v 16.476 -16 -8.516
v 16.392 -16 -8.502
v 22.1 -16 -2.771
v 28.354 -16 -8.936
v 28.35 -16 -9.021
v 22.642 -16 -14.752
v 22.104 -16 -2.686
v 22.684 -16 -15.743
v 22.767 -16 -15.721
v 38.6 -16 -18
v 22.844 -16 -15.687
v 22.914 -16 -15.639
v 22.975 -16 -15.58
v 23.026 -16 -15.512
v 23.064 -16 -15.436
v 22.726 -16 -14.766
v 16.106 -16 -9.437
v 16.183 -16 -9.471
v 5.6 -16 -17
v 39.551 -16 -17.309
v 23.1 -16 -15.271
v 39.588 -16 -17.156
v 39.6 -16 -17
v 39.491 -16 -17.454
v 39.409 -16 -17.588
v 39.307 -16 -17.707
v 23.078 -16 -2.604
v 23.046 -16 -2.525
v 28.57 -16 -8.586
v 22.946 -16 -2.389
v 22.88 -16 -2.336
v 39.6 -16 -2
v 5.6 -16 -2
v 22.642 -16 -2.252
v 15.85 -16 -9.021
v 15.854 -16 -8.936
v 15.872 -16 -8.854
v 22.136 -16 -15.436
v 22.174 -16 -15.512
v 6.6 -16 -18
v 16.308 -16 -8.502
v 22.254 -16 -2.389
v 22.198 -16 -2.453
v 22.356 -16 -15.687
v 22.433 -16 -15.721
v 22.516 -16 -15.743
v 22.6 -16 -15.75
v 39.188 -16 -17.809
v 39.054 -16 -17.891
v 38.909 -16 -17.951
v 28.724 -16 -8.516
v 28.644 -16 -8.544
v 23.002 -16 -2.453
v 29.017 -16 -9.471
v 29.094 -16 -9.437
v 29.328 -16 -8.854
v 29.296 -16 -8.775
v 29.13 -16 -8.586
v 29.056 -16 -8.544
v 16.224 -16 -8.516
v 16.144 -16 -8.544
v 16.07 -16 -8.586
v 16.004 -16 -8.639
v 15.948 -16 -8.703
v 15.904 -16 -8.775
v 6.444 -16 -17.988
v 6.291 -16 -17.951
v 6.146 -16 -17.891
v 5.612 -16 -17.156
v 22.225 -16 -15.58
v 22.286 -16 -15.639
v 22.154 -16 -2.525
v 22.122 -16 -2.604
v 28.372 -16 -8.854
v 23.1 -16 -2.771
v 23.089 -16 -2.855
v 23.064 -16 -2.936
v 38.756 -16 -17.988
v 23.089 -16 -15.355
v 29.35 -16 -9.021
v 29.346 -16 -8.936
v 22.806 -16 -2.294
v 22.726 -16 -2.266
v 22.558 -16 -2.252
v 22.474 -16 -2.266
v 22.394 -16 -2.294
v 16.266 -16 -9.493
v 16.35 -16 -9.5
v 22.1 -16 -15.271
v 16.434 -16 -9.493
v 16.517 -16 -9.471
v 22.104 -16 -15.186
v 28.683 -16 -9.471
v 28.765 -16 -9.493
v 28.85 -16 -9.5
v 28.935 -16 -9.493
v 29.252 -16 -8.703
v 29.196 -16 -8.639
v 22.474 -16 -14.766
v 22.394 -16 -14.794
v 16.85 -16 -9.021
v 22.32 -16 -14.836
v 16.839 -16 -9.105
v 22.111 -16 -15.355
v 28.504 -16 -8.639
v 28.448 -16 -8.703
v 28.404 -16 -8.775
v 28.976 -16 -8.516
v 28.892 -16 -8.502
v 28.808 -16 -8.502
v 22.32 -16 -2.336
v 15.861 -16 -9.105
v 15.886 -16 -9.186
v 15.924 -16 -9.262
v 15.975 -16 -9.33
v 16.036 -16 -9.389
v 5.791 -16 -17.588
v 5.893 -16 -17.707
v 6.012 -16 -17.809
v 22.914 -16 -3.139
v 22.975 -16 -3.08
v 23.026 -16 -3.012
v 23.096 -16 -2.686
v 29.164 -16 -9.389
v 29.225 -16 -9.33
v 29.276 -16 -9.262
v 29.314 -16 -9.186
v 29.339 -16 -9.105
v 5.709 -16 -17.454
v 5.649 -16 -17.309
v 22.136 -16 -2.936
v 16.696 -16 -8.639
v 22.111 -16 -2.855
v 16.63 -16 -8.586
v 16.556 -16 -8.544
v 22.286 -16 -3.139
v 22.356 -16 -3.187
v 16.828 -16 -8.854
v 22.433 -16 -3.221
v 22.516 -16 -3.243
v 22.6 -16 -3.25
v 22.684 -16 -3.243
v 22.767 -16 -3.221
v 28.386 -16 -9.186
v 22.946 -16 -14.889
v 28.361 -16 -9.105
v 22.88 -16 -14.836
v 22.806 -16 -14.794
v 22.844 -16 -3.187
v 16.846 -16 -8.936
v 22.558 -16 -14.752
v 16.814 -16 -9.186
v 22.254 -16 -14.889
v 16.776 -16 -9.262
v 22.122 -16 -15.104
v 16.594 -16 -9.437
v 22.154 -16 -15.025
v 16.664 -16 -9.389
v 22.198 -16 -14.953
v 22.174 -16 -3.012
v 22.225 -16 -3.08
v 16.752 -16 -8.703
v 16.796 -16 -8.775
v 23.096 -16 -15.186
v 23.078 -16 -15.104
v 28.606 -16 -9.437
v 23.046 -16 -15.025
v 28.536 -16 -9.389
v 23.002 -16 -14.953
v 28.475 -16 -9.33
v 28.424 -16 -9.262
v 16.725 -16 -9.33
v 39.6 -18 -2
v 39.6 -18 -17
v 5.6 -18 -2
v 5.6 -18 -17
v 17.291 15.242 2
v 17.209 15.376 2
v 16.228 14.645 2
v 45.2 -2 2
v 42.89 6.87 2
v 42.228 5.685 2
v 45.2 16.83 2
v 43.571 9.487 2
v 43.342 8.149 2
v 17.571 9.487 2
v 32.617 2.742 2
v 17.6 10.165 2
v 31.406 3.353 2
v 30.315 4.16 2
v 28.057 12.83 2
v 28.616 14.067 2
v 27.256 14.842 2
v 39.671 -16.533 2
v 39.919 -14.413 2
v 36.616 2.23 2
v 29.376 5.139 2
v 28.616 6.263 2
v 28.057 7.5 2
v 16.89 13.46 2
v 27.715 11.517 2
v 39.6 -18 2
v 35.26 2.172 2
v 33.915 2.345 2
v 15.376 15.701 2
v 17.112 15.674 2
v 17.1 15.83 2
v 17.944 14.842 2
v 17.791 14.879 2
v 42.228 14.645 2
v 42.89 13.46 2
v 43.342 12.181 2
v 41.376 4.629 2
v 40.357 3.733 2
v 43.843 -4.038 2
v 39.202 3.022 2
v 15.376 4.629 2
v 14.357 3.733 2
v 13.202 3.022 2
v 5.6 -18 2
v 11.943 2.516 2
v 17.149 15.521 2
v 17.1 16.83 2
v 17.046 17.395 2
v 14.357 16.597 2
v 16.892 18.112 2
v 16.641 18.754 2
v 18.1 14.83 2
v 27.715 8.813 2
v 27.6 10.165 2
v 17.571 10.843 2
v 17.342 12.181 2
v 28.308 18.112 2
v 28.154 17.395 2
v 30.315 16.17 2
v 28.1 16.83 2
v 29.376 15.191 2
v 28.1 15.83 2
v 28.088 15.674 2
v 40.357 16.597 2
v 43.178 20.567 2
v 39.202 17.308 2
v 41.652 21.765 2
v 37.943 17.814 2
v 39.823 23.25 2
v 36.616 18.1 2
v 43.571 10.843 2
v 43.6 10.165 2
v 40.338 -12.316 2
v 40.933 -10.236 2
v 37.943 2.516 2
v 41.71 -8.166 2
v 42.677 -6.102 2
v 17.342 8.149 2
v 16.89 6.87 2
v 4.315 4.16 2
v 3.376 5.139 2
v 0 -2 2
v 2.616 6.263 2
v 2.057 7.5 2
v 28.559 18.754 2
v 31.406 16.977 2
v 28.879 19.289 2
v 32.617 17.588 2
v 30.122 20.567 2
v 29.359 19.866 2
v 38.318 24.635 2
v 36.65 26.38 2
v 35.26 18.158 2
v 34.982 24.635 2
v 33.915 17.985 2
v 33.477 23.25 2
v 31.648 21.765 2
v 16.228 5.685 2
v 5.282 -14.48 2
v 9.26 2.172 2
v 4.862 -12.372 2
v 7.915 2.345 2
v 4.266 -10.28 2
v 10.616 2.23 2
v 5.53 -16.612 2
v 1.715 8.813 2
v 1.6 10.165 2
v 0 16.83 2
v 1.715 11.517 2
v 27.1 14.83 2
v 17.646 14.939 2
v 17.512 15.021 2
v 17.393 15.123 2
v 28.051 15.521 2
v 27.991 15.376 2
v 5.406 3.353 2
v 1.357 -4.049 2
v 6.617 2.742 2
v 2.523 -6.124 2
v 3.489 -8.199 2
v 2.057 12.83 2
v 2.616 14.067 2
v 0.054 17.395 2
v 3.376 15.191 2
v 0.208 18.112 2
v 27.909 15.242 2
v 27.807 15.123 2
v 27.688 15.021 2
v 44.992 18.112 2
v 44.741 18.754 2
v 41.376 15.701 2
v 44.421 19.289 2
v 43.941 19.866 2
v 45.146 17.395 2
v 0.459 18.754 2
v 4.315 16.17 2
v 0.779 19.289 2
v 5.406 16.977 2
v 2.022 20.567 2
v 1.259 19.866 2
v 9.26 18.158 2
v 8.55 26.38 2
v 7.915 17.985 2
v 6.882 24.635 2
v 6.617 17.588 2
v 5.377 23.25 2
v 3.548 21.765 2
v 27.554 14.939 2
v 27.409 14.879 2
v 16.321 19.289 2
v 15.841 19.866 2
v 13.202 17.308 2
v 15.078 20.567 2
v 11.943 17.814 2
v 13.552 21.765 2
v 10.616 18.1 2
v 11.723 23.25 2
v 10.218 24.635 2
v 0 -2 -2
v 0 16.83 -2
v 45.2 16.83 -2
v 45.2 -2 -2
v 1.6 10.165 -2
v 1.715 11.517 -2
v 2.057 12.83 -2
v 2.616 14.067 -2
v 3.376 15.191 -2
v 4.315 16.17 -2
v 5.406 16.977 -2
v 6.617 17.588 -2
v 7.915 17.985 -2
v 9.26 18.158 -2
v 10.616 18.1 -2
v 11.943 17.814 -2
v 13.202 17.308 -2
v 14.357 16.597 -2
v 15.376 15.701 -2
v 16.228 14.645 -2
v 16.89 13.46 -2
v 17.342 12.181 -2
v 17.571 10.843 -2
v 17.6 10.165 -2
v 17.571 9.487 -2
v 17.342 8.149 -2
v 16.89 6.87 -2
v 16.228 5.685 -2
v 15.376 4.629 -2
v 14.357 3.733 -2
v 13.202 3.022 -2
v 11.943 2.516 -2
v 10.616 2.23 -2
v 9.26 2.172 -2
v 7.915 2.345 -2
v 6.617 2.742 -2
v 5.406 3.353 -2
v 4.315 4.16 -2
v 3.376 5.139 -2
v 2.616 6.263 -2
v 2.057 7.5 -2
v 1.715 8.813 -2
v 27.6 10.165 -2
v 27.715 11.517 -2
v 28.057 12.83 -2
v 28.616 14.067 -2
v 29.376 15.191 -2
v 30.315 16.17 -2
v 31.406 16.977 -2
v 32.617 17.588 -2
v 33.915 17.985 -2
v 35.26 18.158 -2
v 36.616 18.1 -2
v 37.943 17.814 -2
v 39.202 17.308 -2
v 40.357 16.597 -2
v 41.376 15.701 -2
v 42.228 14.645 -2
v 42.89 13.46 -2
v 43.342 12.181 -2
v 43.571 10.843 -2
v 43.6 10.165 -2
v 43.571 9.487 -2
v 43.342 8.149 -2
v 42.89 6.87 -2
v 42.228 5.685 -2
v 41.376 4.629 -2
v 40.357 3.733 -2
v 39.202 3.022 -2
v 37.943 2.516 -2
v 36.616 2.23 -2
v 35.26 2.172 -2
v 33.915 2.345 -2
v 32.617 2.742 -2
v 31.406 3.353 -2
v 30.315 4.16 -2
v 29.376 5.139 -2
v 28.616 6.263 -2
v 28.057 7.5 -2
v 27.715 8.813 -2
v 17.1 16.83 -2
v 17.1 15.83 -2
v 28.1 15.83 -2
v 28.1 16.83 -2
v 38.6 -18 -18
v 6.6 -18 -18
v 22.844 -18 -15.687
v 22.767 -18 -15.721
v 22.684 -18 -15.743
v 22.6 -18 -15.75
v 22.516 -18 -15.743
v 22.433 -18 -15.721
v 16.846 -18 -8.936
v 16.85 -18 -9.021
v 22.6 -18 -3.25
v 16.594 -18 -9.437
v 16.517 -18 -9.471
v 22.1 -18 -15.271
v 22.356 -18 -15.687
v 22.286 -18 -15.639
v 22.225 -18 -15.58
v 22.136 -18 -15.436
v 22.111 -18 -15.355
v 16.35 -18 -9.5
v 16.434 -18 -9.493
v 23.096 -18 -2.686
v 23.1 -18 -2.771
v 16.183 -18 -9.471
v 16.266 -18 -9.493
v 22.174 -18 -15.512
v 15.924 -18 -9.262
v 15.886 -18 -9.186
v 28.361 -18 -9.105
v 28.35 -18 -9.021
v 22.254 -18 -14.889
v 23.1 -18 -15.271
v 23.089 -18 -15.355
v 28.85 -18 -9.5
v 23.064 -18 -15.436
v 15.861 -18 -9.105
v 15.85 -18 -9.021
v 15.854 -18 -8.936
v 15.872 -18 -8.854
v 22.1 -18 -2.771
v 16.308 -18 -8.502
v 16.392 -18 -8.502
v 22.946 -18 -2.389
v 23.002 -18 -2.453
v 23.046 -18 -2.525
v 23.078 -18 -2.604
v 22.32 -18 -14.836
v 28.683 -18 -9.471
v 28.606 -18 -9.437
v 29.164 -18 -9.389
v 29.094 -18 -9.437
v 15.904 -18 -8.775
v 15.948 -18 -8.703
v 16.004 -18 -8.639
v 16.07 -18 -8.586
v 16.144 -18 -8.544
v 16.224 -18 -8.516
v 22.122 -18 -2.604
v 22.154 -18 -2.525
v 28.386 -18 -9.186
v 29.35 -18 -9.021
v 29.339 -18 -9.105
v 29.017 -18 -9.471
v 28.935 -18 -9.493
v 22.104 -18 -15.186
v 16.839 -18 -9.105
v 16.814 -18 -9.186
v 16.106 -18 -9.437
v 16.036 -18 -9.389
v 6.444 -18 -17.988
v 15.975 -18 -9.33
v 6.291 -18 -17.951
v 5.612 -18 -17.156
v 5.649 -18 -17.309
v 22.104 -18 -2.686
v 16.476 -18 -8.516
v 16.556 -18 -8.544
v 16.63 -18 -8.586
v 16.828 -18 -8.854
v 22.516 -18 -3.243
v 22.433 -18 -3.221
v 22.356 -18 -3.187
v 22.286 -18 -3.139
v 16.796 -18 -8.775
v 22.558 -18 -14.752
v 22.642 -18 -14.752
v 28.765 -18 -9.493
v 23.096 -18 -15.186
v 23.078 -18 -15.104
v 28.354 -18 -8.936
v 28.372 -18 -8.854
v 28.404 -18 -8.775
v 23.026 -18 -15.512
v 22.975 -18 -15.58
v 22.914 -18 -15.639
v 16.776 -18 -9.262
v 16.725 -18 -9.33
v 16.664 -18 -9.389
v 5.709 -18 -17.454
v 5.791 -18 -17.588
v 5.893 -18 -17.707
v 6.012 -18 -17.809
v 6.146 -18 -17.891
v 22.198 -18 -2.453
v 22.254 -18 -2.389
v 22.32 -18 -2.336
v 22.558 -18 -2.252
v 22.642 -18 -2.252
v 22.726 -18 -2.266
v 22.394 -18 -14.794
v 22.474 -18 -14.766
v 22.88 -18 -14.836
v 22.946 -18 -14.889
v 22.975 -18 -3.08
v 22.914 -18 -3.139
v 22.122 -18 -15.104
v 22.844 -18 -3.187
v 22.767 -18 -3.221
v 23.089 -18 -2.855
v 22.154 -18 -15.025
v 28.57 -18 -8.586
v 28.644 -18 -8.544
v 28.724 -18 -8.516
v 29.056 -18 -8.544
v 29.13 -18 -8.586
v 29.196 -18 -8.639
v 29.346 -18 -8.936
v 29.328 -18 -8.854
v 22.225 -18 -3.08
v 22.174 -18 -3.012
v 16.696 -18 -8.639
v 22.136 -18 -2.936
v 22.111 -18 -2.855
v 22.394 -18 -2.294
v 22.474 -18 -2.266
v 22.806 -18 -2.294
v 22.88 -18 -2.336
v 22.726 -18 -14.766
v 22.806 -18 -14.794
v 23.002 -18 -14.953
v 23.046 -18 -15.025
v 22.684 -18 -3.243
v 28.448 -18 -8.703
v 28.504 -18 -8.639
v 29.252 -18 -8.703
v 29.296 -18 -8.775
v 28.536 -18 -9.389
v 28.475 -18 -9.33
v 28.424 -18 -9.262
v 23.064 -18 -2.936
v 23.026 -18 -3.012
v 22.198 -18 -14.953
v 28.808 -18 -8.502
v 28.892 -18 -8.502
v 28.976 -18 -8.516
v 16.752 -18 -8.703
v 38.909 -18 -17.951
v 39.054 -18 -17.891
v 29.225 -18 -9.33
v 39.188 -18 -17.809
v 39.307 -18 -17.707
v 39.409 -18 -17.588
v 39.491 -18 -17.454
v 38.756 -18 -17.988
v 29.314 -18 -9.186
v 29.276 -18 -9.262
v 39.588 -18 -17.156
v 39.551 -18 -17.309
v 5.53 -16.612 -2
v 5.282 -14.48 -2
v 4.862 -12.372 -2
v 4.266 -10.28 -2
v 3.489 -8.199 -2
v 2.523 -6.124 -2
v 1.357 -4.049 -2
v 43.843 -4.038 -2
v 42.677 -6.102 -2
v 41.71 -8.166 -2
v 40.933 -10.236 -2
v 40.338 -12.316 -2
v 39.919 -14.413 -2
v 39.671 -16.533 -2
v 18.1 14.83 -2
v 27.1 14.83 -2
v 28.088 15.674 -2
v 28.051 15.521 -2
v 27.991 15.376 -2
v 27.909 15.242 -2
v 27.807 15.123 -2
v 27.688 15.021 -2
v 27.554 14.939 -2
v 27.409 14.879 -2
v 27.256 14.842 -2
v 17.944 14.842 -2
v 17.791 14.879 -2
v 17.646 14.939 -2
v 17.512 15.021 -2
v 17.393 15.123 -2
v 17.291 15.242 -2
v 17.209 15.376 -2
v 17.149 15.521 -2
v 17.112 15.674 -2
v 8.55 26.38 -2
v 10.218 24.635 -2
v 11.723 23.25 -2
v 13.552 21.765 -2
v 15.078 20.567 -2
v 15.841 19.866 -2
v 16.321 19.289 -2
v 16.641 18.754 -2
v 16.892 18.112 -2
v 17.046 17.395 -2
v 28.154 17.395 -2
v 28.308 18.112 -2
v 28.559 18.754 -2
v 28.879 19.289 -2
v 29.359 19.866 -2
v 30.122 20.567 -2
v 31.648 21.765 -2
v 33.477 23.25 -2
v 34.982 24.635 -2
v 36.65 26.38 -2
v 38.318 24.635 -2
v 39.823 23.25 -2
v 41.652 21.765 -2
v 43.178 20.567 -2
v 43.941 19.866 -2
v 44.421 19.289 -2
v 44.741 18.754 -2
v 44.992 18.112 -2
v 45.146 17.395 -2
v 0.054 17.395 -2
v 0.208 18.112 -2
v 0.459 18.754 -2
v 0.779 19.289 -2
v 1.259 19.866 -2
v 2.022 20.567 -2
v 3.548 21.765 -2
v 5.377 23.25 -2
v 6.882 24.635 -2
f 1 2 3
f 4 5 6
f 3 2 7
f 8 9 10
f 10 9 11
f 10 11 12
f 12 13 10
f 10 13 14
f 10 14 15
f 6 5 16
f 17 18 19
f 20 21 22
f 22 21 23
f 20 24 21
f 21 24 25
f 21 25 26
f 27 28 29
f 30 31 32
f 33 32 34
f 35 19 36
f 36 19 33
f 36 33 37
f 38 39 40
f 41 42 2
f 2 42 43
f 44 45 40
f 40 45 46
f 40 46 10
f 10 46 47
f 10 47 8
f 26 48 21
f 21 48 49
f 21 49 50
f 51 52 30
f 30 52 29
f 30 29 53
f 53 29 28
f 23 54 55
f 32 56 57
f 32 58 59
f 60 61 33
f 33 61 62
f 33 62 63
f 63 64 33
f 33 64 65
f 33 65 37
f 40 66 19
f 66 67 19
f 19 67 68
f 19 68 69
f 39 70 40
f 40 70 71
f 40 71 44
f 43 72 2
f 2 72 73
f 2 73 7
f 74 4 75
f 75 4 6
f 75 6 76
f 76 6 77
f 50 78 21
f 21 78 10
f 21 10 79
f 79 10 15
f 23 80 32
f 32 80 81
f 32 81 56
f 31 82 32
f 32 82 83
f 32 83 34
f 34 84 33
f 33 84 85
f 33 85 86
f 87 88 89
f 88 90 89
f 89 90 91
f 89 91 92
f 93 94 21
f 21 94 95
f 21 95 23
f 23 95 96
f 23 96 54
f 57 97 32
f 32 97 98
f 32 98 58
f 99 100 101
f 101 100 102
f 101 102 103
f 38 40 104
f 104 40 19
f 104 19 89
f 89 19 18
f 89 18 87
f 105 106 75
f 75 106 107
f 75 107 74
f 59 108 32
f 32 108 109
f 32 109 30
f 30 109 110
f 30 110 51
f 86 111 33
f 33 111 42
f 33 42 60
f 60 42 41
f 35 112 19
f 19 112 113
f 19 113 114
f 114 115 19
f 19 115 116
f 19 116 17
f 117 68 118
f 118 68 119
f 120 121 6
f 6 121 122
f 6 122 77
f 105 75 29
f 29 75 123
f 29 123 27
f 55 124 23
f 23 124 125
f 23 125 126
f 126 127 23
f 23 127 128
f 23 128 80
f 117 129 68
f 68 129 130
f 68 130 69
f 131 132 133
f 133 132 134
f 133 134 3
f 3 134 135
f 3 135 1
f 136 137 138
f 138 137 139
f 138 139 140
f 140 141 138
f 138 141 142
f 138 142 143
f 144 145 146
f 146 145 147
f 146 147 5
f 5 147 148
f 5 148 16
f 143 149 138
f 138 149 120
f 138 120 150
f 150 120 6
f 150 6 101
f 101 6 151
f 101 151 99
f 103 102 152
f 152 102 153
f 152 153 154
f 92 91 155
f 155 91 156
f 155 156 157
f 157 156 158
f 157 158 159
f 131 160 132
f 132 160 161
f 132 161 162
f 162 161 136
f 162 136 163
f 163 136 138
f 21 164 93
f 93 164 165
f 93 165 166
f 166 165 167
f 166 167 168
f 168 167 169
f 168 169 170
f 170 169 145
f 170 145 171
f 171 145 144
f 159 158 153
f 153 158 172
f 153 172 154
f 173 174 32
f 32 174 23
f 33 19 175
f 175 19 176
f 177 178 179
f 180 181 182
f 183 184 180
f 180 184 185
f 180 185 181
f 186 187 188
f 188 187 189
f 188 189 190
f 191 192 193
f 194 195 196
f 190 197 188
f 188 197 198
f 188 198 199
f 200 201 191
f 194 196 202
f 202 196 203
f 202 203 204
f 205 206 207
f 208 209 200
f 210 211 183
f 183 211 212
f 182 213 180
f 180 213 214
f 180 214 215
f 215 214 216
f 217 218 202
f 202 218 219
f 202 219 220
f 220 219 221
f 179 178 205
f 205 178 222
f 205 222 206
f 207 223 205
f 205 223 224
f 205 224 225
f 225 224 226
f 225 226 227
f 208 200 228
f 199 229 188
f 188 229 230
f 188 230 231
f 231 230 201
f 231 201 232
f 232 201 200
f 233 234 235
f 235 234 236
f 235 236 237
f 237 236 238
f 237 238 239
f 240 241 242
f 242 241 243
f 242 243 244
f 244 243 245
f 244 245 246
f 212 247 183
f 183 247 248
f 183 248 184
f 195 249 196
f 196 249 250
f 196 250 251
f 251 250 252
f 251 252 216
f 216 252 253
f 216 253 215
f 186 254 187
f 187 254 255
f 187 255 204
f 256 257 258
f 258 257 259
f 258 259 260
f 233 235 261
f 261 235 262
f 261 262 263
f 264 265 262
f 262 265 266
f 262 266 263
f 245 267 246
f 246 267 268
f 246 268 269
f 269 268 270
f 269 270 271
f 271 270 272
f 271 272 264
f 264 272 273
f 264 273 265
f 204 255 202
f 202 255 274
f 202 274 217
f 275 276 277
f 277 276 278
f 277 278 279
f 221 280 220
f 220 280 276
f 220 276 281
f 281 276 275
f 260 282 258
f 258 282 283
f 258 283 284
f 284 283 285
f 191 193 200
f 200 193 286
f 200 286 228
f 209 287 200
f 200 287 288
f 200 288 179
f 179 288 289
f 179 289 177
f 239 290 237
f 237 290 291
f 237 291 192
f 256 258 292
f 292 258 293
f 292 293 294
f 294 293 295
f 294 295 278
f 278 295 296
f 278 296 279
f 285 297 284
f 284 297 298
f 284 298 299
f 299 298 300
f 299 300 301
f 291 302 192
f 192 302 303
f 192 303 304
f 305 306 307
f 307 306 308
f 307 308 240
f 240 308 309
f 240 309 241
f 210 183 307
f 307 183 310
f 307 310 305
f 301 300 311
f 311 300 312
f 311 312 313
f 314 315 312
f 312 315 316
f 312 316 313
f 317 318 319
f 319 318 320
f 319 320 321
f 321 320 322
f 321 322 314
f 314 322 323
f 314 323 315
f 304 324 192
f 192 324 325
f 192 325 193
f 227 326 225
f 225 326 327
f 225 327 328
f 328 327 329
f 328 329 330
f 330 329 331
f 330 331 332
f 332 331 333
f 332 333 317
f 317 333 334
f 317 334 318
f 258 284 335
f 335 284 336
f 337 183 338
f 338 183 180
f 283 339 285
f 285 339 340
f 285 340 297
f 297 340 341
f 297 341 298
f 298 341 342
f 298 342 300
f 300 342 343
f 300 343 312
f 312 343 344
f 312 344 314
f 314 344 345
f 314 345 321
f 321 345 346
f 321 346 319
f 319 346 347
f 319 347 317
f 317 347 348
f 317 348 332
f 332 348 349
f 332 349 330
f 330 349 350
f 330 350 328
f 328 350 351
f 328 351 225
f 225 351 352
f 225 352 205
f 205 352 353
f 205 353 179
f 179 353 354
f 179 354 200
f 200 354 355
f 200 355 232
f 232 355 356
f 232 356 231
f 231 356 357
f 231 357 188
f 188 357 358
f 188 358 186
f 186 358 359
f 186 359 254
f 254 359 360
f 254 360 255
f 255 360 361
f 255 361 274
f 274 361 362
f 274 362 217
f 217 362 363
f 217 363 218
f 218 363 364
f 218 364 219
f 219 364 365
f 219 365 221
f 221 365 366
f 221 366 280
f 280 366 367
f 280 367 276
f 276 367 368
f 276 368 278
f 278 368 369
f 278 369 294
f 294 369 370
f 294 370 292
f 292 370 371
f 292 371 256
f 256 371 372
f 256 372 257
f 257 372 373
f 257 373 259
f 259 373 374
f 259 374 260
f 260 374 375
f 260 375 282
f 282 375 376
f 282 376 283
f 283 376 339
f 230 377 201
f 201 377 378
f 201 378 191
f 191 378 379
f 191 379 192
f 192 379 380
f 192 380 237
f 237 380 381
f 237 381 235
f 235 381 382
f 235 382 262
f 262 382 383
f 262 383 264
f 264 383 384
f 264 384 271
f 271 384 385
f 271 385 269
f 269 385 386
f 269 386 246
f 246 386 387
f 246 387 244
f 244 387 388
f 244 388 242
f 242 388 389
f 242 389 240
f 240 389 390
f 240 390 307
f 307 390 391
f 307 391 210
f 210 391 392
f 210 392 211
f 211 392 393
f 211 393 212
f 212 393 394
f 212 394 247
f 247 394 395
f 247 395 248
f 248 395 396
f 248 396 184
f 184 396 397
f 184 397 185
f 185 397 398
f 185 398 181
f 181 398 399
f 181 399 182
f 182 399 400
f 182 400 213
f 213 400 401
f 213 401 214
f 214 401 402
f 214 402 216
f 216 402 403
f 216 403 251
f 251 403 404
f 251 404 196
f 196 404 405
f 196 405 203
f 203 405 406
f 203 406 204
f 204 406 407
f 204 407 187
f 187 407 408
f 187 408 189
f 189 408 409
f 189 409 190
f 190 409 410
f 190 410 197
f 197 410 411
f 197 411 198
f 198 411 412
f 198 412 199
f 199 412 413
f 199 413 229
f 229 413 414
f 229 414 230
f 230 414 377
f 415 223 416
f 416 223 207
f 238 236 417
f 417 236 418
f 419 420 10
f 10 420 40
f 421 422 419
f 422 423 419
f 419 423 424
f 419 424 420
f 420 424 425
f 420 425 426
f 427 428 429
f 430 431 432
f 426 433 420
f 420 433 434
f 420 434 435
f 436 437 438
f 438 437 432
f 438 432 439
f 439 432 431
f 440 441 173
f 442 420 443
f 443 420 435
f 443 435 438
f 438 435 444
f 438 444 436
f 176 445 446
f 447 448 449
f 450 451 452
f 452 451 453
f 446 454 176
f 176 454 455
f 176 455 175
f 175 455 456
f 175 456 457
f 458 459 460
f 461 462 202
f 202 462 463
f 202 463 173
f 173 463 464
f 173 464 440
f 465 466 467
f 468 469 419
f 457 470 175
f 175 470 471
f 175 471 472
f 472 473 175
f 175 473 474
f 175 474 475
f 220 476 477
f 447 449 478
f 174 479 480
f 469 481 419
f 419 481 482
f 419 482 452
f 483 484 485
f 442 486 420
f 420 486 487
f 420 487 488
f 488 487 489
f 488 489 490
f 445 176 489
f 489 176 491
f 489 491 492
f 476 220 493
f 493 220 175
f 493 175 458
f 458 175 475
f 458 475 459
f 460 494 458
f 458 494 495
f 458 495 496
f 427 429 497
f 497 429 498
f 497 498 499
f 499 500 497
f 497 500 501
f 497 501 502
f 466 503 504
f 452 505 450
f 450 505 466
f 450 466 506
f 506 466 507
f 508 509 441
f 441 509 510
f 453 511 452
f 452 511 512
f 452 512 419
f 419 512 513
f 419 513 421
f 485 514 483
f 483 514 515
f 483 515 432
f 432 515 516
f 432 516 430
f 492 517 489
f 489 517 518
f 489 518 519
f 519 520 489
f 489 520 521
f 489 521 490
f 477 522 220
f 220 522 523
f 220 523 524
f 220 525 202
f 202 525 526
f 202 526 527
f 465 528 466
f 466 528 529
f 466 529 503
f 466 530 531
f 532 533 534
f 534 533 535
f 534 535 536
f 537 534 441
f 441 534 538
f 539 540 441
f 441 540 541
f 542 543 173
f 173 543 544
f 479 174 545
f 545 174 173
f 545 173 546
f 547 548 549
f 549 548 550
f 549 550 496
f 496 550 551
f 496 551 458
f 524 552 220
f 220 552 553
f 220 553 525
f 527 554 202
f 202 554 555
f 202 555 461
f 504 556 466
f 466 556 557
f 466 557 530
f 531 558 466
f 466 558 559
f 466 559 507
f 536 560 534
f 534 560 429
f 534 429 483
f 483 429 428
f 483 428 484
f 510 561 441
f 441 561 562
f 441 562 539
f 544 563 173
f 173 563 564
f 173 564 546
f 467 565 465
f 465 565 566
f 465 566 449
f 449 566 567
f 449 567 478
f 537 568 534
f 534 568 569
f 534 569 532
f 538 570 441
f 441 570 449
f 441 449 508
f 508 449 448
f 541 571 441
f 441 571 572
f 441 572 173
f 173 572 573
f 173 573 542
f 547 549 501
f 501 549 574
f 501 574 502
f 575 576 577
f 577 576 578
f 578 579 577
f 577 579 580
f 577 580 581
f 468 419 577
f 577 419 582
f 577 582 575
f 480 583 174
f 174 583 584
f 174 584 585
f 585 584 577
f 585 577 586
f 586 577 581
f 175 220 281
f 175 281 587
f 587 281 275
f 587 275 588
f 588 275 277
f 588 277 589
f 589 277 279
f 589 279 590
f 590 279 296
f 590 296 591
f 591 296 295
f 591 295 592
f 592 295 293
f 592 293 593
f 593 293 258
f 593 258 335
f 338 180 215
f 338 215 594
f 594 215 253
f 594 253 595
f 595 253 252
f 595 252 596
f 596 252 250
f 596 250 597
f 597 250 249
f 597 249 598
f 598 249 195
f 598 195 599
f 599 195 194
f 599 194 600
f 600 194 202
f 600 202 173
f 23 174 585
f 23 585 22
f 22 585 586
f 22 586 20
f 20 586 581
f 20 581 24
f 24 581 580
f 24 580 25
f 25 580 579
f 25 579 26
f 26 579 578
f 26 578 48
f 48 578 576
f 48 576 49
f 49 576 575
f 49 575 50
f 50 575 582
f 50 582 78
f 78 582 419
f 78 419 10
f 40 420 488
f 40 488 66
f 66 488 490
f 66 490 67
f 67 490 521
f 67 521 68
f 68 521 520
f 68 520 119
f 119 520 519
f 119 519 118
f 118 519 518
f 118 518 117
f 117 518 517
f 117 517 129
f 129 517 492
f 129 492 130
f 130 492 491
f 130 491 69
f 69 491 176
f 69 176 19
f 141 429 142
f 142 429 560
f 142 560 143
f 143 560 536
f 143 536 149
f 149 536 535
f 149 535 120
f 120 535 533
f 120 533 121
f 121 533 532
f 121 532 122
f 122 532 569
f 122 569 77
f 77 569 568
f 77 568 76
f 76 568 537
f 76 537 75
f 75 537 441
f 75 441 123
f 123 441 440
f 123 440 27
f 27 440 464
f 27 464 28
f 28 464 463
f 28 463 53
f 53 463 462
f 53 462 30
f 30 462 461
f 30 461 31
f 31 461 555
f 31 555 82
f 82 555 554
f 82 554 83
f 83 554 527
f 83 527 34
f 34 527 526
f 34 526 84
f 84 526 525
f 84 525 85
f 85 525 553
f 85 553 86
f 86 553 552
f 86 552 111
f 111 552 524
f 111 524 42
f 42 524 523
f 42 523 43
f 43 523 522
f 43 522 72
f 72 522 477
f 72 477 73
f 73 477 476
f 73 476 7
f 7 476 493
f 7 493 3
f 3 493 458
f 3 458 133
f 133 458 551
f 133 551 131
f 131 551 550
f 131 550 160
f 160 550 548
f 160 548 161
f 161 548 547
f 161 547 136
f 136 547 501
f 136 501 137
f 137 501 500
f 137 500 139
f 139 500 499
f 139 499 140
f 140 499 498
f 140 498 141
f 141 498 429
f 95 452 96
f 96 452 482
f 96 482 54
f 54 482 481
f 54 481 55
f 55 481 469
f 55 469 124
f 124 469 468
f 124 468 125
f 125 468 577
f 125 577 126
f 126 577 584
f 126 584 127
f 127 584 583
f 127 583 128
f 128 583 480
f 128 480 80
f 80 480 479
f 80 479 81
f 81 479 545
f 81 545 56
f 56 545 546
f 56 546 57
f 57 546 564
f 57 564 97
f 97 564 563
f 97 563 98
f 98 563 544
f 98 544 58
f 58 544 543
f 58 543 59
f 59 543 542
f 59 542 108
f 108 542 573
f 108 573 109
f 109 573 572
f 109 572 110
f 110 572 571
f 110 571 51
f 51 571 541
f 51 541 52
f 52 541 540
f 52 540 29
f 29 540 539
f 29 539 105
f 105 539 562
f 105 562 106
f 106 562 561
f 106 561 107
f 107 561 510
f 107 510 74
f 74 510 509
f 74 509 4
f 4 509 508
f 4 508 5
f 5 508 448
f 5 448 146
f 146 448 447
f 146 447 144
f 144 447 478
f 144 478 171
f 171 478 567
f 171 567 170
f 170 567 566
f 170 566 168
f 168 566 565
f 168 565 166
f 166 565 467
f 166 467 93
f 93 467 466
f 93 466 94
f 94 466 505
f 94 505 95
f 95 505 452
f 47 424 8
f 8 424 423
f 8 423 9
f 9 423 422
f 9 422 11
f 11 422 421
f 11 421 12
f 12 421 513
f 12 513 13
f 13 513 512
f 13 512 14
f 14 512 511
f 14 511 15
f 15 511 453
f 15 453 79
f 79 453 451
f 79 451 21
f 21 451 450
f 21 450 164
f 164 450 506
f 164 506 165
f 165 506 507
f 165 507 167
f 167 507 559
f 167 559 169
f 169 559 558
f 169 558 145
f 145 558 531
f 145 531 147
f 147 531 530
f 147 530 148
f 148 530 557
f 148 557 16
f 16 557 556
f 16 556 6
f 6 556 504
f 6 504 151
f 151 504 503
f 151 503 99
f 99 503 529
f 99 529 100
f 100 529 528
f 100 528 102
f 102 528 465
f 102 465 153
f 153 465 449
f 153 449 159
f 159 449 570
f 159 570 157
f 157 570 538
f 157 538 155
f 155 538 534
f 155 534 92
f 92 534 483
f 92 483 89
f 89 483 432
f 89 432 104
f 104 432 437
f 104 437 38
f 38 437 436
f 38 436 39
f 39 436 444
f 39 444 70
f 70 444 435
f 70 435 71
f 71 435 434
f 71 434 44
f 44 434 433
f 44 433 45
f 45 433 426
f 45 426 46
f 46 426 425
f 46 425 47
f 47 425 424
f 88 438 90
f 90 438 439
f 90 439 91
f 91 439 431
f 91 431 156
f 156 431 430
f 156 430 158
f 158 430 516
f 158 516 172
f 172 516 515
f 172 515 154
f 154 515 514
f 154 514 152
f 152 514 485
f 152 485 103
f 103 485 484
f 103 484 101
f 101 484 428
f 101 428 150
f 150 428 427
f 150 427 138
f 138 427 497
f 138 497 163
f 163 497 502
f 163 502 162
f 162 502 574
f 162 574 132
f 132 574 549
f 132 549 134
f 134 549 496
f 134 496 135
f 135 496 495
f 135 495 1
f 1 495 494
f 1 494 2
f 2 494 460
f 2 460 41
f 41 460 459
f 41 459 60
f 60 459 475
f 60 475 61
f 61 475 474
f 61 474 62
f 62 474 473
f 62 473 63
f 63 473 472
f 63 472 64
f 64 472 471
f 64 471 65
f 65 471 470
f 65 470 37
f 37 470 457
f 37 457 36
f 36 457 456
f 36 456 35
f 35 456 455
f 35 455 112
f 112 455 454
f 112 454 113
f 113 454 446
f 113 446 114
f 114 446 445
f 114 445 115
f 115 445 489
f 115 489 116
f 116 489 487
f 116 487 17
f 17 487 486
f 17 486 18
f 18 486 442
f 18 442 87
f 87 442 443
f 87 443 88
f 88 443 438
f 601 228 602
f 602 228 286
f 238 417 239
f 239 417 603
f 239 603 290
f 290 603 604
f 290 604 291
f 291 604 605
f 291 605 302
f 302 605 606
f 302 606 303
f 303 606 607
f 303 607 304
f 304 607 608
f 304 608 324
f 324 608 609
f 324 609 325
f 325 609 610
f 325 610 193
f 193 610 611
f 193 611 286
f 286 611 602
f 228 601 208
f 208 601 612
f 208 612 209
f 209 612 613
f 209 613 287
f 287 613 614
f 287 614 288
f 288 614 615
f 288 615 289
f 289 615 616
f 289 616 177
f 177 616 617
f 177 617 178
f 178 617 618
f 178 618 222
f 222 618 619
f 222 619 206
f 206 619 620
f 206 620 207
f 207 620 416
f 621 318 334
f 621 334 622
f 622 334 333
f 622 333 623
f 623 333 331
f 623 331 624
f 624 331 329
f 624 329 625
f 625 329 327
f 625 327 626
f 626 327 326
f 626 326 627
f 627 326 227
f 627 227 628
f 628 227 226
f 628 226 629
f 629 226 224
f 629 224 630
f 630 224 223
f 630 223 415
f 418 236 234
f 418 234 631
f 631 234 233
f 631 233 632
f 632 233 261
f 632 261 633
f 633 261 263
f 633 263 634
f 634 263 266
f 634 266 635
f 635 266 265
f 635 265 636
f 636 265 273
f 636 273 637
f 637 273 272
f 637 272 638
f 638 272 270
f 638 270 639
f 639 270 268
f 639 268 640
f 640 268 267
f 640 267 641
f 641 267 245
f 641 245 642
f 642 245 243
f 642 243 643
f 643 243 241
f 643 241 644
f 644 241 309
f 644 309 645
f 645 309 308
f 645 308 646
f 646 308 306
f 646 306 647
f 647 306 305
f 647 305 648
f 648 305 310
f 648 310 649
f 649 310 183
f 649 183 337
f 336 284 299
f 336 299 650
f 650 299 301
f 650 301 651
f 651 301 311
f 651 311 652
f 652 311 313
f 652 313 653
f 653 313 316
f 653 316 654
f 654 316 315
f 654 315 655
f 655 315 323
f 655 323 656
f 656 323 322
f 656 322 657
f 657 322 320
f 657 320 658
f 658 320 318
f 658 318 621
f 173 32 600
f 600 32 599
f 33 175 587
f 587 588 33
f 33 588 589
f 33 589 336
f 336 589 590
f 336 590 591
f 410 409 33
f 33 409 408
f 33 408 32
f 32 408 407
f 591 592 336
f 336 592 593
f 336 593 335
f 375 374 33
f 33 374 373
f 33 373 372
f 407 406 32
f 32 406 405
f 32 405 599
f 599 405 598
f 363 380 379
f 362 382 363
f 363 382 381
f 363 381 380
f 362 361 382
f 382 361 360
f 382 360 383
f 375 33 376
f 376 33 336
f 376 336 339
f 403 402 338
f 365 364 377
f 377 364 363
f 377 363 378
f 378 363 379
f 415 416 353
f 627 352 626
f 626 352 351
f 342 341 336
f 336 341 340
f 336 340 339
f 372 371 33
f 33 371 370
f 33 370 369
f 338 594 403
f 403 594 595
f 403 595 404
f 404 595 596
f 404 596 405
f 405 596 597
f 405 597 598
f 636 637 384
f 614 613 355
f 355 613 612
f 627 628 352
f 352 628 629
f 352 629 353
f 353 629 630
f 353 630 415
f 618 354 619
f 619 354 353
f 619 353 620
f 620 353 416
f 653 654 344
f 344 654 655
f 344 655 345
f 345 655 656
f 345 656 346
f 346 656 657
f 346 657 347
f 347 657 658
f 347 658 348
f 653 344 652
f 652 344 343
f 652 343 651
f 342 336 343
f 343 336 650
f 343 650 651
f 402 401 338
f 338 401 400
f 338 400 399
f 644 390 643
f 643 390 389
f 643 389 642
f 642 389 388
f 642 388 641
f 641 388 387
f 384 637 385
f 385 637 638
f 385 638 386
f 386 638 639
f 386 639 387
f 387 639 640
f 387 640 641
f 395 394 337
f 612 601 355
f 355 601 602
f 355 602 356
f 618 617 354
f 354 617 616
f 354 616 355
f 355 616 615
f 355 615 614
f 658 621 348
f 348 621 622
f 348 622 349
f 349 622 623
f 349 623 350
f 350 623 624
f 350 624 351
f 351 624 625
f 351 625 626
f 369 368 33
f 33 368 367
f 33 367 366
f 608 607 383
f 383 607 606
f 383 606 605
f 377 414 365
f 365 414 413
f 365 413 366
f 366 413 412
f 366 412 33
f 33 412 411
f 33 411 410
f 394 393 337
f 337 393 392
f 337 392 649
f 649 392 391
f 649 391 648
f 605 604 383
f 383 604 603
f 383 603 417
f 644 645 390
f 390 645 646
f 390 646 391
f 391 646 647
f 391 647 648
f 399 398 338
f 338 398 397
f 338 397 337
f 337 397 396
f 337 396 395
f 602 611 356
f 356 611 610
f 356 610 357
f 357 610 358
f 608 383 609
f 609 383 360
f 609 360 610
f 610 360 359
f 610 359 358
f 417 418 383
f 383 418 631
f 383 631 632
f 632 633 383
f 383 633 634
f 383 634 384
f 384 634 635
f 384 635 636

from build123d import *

# Parameters (mm, degrees)
SKETCH_1_R           = 8
EXTRUDE_2_DEPTH      = 2
EXTRUDE_3_DEPTH      = 18
EXTRUDE_3_DEPTH_BACK = 1
SKETCH_2_W           = 45.2
SKETCH_2_H           = 2
SKETCH_3_W           = 45.2
SKETCH_3_H           = 18
EXTRUDE_4_DEPTH      = 18
SKETCH_4_W           = 45.2
SKETCH_4_H           = 18
CUT_EXTRUDE_2_DEPTH  = 16
CUT_EXTRUDE_4_DEPTH  = 20
SKETCH_7_W           = 0.117046
SKETCH_7_H           = 18
CUT_EXTRUDE_5_DEPTH  = 20
CUT_EXTRUDE_6_DEPTH  = 20
SKETCH_9_R           = 0.5
CUT_EXTRUDE_7_DEPTH  = 20
CUT_EXTRUDE_8_DEPTH  = 20
FILLET_1_R           = 1
FILLET_2_R           = 1
FILLET_3_R           = 1
SKETCH_14_W          = 47.954779
SKETCH_14_H          = 7.292093
CUT_EXTRUDE_12_DEPTH = 4
EXTRUDE_START        = -4
EXTRUDE_11_OUTLINE_R = 8
EXTRUDE_11_DEPTH     = 4


# Read off the part's stored shape, not the designer's step: 凸台-拉伸11
with BuildPart() as part:
    # 草图1 → 凸台-拉伸2 (new body)
    with BuildSketch(Plane.XY):
        with BuildLine():
            Line((1, 0), (44.2, 0))
            ThreePointArc((44.2, 0), (44.907107, 0.292893), (45.2, 1))
            Line((45.2, 1), (45.2, 19.33))
            ThreePointArc((45.2, 19.33), (44.907107, 20.037107), (44.2, 20.33))
            Line((44.2, 20.33), (1, 20.33))
            ThreePointArc((1, 20.33), (0.292893, 20.037107), (0, 19.33))
            Line((0, 19.33), (0, 1))
            ThreePointArc((0, 1), (0.292893, 0.292893), (1, 0))
        make_face()
        with Locations((35.6, 10.165)):
            Circle(SKETCH_1_R, mode=Mode.SUBTRACT)
        with Locations((9.6, 10.165)):
            Circle(SKETCH_1_R, mode=Mode.SUBTRACT)
    extrude(amount=EXTRUDE_2_DEPTH)

    # 草图2 → 凸台-拉伸3 (add, two sides: drawn at the far end of the back side and taken through both)
    with BuildSketch(Plane.XZ.offset(-EXTRUDE_3_DEPTH_BACK)):
        with Locations((22.6, 1)):
            Rectangle(SKETCH_2_W, SKETCH_2_H)
    extrude(amount=EXTRUDE_3_DEPTH + EXTRUDE_3_DEPTH_BACK)

    # 草图3 → 凸台-拉伸4 (add)
    with BuildSketch(Plane(origin=(0, 0, 0), x_dir=(-1, 0, 0), z_dir=(0, 0, -1))):
        with Locations((-22.6, -9)):
            Rectangle(SKETCH_3_W, SKETCH_3_H)
    extrude(amount=EXTRUDE_4_DEPTH)

    # 草图4 → 切除-拉伸2 (cut)
    with BuildSketch(Plane(origin=(0, 0, 0), x_dir=(1, 0, 0), z_dir=(0, 1, 0))):
        with Locations((22.6, 9)):
            Rectangle(SKETCH_4_W, SKETCH_4_H)
    extrude(amount=-CUT_EXTRUDE_2_DEPTH, mode=Mode.SUBTRACT)

    # 草图5 → 切除-拉伸4 (cut)
    with BuildSketch(Plane.XY.offset(2)):
        Polygon((0, -18), (5.6, -18), (0, -2), align=None)
        with BuildLine():
            Line((0, -2), (5.6, -18))
            add(Edge.make_bspline(
                [(0, -2), (5.393134, -9.559308), (5.6, -18)],
                knots=[0, 0, 0, 0.926119, 0.926119, 0.926119], degree=2))
        make_face()
        with BuildLine():
            add(Edge.make_bspline(
                [(45.2, -2), (39.778817, -9.554541), (39.6, -18)],
                knots=[0, 0, 0, 0.936137, 0.936137, 0.936137], degree=2))
            Line((39.6, -18), (45.2, -18))
            Line((45.2, -18), (45.2, -2))
        make_face()
    extrude(amount=-CUT_EXTRUDE_4_DEPTH, mode=Mode.SUBTRACT)

    # 草图7 → 切除-拉伸5 (cut)
    with BuildSketch(Plane(origin=(0, -18, 0), x_dir=(-1, 0, 0), z_dir=(0, -1, 0))):
        with Locations((-39.658523, 9)):
            Rectangle(SKETCH_7_W, SKETCH_7_H)
    extrude(amount=-CUT_EXTRUDE_5_DEPTH, mode=Mode.SUBTRACT)

    # 草图8 → 切除-拉伸6 (cut)
    with BuildSketch(Plane(origin=(0, -18, 0), x_dir=(-1, 0, 0), z_dir=(0, -1, 0))):
        with BuildLine():
            ThreePointArc((-39.6, 17), (-39.307107, 17.707107), (-38.6, 18))
            Line((-38.6, 18), (-39.6, 18))
            Line((-39.6, 18), (-39.6, 17))
        make_face()
        with BuildLine():
            ThreePointArc((-6.6, 18), (-5.892893, 17.707107), (-5.6, 17))
            Line((-5.6, 17), (-5.6, 18))
            Line((-5.6, 18), (-6.6, 18))
        make_face()
        Polygon((-5.6, 0), (-5.476967, 0), (-5.476967, 18), (-5.6, 18), (-5.6, 17), align=None)
    extrude(amount=-CUT_EXTRUDE_6_DEPTH, mode=Mode.SUBTRACT)

    # 草图9 → 切除-拉伸7 (cut)
    with BuildSketch(Plane.XZ.offset(18)):
        with Locations(Location((16.35, -9, 0), (0, 0, 270))):
            Circle(SKETCH_9_R)
        with Locations(Location((22.6, -2.75, 0), (0, 0, 270))):
            Circle(SKETCH_9_R)
        with Locations(Location((28.85, -9, 0), (0, 0, 270))):
            Circle(SKETCH_9_R)
        with Locations(Location((22.6, -15.25, 0), (0, 0, 270))):
            Circle(SKETCH_9_R)
    extrude(amount=-CUT_EXTRUDE_7_DEPTH, mode=Mode.SUBTRACT)

    # 草图10 → 切除-拉伸8 (cut)
    with BuildSketch(Plane.XY.offset(2)):
        Polygon((22.6, 20.33), (17.1, 20.33), (17.1, 14.83), (28.1, 14.83), (28.1, 20.33), align=None)
    extrude(amount=-CUT_EXTRUDE_8_DEPTH, mode=Mode.SUBTRACT)

    # 圆角1
    fillet_1_edges = [part.edges().sort_by_distance(p)[0] for p in [
        (28.1, 20.33, 1),
        (17.1, 20.33, 1),
    ]]
    fillet(fillet_1_edges, radius=FILLET_1_R)

    # 圆角2
    fillet_2_edges = [part.edges().sort_by_distance(p)[0] for p in [
        (28.1, 14.83, 1),
    ]]
    fillet(fillet_2_edges, radius=FILLET_2_R)

    # 圆角3
    fillet_3_edges = [part.edges().sort_by_distance(p)[0] for p in [
        (17.1, 14.83, 1),
    ]]
    fillet(fillet_3_edges, radius=FILLET_3_R)

    # 草图14 → 切除-拉伸12 (cut)
    with BuildSketch(Plane(origin=(0, 20.33, 0), x_dir=(1, 0, 0), z_dir=(0, 1, 0))):
        with Locations((22.880684, -2.280867)):
            Rectangle(SKETCH_14_W, SKETCH_14_H)
    extrude(amount=-CUT_EXTRUDE_12_DEPTH, mode=Mode.SUBTRACT)

    # 凸台-拉伸11 outline → 凸台-拉伸11 (add)
    with BuildSketch(Plane.XY.offset(2).offset(EXTRUDE_START)):
        with BuildLine():
            add(Edge.make_bspline(
                [(0, -2), (5.393134, -9.559308), (5.6, -18)],
                knots=[0, 0, 0, 0.926119, 0.926119, 0.926119], degree=2))
            Line((5.6, -18), (5.6, -16))
            Line((5.6, -16), (39.6, -16))
            Line((39.6, -16), (39.6, -18))
            add(Edge.make_bspline(
                [(45.2, -2), (39.778817, -9.554541), (39.6, -18)],
                knots=[0, 0, 0, 0.936137, 0.936137, 0.936137], degree=2))
            Line((45.2, -2), (45.2, 16.83))
            add(Edge.make_bspline(
                [(36.65, 26.38), (41.993745, 20.411254), (44.982894, 20.749172), (45.2, 16.83)],
                knots=[0, 0, 0, 0, 0.927631, 0.927631, 0.927631, 0.927631], degree=3))
            add(Edge.make_bspline(
                [(36.65, 26.38), (31.306253, 20.41125), (28.317106, 20.749171), (28.1, 16.83)],
                knots=[0, 0, 0, 0, 0.927631, 0.927631, 0.927631, 0.927631], degree=3))
            Line((28.1, 16.83), (28.1, 15.83))
            ThreePointArc((28.1, 15.83), (27.807107, 15.122893), (27.1, 14.83))
            Line((27.1, 14.83), (18.1, 14.83))
            ThreePointArc((18.1, 14.83), (17.392893, 15.122893), (17.1, 15.83))
            Line((17.1, 15.83), (17.1, 16.83))
            add(Edge.make_bspline(
                [(8.55, 26.38), (13.893745, 20.411254), (16.882894, 20.749172), (17.1, 16.83)],
                knots=[0, 0, 0, 0, 0.927631, 0.927631, 0.927631, 0.927631], degree=3))
            add(Edge.make_bspline(
                [(8.55, 26.38), (3.206253, 20.41125), (0.217106, 20.749171), (0, 16.83)],
                knots=[0, 0, 0, 0, 0.927631, 0.927631, 0.927631, 0.927631], degree=3))
            Line((0, 16.83), (0, -2))
        make_face()
        with Locations((9.6, 10.165)):
            Circle(EXTRUDE_11_OUTLINE_R, mode=Mode.SUBTRACT)
        with Locations((35.6, 10.165)):
            Circle(EXTRUDE_11_OUTLINE_R, mode=Mode.SUBTRACT)
    extrude(amount=EXTRUDE_11_DEPTH)


solid = part.part
